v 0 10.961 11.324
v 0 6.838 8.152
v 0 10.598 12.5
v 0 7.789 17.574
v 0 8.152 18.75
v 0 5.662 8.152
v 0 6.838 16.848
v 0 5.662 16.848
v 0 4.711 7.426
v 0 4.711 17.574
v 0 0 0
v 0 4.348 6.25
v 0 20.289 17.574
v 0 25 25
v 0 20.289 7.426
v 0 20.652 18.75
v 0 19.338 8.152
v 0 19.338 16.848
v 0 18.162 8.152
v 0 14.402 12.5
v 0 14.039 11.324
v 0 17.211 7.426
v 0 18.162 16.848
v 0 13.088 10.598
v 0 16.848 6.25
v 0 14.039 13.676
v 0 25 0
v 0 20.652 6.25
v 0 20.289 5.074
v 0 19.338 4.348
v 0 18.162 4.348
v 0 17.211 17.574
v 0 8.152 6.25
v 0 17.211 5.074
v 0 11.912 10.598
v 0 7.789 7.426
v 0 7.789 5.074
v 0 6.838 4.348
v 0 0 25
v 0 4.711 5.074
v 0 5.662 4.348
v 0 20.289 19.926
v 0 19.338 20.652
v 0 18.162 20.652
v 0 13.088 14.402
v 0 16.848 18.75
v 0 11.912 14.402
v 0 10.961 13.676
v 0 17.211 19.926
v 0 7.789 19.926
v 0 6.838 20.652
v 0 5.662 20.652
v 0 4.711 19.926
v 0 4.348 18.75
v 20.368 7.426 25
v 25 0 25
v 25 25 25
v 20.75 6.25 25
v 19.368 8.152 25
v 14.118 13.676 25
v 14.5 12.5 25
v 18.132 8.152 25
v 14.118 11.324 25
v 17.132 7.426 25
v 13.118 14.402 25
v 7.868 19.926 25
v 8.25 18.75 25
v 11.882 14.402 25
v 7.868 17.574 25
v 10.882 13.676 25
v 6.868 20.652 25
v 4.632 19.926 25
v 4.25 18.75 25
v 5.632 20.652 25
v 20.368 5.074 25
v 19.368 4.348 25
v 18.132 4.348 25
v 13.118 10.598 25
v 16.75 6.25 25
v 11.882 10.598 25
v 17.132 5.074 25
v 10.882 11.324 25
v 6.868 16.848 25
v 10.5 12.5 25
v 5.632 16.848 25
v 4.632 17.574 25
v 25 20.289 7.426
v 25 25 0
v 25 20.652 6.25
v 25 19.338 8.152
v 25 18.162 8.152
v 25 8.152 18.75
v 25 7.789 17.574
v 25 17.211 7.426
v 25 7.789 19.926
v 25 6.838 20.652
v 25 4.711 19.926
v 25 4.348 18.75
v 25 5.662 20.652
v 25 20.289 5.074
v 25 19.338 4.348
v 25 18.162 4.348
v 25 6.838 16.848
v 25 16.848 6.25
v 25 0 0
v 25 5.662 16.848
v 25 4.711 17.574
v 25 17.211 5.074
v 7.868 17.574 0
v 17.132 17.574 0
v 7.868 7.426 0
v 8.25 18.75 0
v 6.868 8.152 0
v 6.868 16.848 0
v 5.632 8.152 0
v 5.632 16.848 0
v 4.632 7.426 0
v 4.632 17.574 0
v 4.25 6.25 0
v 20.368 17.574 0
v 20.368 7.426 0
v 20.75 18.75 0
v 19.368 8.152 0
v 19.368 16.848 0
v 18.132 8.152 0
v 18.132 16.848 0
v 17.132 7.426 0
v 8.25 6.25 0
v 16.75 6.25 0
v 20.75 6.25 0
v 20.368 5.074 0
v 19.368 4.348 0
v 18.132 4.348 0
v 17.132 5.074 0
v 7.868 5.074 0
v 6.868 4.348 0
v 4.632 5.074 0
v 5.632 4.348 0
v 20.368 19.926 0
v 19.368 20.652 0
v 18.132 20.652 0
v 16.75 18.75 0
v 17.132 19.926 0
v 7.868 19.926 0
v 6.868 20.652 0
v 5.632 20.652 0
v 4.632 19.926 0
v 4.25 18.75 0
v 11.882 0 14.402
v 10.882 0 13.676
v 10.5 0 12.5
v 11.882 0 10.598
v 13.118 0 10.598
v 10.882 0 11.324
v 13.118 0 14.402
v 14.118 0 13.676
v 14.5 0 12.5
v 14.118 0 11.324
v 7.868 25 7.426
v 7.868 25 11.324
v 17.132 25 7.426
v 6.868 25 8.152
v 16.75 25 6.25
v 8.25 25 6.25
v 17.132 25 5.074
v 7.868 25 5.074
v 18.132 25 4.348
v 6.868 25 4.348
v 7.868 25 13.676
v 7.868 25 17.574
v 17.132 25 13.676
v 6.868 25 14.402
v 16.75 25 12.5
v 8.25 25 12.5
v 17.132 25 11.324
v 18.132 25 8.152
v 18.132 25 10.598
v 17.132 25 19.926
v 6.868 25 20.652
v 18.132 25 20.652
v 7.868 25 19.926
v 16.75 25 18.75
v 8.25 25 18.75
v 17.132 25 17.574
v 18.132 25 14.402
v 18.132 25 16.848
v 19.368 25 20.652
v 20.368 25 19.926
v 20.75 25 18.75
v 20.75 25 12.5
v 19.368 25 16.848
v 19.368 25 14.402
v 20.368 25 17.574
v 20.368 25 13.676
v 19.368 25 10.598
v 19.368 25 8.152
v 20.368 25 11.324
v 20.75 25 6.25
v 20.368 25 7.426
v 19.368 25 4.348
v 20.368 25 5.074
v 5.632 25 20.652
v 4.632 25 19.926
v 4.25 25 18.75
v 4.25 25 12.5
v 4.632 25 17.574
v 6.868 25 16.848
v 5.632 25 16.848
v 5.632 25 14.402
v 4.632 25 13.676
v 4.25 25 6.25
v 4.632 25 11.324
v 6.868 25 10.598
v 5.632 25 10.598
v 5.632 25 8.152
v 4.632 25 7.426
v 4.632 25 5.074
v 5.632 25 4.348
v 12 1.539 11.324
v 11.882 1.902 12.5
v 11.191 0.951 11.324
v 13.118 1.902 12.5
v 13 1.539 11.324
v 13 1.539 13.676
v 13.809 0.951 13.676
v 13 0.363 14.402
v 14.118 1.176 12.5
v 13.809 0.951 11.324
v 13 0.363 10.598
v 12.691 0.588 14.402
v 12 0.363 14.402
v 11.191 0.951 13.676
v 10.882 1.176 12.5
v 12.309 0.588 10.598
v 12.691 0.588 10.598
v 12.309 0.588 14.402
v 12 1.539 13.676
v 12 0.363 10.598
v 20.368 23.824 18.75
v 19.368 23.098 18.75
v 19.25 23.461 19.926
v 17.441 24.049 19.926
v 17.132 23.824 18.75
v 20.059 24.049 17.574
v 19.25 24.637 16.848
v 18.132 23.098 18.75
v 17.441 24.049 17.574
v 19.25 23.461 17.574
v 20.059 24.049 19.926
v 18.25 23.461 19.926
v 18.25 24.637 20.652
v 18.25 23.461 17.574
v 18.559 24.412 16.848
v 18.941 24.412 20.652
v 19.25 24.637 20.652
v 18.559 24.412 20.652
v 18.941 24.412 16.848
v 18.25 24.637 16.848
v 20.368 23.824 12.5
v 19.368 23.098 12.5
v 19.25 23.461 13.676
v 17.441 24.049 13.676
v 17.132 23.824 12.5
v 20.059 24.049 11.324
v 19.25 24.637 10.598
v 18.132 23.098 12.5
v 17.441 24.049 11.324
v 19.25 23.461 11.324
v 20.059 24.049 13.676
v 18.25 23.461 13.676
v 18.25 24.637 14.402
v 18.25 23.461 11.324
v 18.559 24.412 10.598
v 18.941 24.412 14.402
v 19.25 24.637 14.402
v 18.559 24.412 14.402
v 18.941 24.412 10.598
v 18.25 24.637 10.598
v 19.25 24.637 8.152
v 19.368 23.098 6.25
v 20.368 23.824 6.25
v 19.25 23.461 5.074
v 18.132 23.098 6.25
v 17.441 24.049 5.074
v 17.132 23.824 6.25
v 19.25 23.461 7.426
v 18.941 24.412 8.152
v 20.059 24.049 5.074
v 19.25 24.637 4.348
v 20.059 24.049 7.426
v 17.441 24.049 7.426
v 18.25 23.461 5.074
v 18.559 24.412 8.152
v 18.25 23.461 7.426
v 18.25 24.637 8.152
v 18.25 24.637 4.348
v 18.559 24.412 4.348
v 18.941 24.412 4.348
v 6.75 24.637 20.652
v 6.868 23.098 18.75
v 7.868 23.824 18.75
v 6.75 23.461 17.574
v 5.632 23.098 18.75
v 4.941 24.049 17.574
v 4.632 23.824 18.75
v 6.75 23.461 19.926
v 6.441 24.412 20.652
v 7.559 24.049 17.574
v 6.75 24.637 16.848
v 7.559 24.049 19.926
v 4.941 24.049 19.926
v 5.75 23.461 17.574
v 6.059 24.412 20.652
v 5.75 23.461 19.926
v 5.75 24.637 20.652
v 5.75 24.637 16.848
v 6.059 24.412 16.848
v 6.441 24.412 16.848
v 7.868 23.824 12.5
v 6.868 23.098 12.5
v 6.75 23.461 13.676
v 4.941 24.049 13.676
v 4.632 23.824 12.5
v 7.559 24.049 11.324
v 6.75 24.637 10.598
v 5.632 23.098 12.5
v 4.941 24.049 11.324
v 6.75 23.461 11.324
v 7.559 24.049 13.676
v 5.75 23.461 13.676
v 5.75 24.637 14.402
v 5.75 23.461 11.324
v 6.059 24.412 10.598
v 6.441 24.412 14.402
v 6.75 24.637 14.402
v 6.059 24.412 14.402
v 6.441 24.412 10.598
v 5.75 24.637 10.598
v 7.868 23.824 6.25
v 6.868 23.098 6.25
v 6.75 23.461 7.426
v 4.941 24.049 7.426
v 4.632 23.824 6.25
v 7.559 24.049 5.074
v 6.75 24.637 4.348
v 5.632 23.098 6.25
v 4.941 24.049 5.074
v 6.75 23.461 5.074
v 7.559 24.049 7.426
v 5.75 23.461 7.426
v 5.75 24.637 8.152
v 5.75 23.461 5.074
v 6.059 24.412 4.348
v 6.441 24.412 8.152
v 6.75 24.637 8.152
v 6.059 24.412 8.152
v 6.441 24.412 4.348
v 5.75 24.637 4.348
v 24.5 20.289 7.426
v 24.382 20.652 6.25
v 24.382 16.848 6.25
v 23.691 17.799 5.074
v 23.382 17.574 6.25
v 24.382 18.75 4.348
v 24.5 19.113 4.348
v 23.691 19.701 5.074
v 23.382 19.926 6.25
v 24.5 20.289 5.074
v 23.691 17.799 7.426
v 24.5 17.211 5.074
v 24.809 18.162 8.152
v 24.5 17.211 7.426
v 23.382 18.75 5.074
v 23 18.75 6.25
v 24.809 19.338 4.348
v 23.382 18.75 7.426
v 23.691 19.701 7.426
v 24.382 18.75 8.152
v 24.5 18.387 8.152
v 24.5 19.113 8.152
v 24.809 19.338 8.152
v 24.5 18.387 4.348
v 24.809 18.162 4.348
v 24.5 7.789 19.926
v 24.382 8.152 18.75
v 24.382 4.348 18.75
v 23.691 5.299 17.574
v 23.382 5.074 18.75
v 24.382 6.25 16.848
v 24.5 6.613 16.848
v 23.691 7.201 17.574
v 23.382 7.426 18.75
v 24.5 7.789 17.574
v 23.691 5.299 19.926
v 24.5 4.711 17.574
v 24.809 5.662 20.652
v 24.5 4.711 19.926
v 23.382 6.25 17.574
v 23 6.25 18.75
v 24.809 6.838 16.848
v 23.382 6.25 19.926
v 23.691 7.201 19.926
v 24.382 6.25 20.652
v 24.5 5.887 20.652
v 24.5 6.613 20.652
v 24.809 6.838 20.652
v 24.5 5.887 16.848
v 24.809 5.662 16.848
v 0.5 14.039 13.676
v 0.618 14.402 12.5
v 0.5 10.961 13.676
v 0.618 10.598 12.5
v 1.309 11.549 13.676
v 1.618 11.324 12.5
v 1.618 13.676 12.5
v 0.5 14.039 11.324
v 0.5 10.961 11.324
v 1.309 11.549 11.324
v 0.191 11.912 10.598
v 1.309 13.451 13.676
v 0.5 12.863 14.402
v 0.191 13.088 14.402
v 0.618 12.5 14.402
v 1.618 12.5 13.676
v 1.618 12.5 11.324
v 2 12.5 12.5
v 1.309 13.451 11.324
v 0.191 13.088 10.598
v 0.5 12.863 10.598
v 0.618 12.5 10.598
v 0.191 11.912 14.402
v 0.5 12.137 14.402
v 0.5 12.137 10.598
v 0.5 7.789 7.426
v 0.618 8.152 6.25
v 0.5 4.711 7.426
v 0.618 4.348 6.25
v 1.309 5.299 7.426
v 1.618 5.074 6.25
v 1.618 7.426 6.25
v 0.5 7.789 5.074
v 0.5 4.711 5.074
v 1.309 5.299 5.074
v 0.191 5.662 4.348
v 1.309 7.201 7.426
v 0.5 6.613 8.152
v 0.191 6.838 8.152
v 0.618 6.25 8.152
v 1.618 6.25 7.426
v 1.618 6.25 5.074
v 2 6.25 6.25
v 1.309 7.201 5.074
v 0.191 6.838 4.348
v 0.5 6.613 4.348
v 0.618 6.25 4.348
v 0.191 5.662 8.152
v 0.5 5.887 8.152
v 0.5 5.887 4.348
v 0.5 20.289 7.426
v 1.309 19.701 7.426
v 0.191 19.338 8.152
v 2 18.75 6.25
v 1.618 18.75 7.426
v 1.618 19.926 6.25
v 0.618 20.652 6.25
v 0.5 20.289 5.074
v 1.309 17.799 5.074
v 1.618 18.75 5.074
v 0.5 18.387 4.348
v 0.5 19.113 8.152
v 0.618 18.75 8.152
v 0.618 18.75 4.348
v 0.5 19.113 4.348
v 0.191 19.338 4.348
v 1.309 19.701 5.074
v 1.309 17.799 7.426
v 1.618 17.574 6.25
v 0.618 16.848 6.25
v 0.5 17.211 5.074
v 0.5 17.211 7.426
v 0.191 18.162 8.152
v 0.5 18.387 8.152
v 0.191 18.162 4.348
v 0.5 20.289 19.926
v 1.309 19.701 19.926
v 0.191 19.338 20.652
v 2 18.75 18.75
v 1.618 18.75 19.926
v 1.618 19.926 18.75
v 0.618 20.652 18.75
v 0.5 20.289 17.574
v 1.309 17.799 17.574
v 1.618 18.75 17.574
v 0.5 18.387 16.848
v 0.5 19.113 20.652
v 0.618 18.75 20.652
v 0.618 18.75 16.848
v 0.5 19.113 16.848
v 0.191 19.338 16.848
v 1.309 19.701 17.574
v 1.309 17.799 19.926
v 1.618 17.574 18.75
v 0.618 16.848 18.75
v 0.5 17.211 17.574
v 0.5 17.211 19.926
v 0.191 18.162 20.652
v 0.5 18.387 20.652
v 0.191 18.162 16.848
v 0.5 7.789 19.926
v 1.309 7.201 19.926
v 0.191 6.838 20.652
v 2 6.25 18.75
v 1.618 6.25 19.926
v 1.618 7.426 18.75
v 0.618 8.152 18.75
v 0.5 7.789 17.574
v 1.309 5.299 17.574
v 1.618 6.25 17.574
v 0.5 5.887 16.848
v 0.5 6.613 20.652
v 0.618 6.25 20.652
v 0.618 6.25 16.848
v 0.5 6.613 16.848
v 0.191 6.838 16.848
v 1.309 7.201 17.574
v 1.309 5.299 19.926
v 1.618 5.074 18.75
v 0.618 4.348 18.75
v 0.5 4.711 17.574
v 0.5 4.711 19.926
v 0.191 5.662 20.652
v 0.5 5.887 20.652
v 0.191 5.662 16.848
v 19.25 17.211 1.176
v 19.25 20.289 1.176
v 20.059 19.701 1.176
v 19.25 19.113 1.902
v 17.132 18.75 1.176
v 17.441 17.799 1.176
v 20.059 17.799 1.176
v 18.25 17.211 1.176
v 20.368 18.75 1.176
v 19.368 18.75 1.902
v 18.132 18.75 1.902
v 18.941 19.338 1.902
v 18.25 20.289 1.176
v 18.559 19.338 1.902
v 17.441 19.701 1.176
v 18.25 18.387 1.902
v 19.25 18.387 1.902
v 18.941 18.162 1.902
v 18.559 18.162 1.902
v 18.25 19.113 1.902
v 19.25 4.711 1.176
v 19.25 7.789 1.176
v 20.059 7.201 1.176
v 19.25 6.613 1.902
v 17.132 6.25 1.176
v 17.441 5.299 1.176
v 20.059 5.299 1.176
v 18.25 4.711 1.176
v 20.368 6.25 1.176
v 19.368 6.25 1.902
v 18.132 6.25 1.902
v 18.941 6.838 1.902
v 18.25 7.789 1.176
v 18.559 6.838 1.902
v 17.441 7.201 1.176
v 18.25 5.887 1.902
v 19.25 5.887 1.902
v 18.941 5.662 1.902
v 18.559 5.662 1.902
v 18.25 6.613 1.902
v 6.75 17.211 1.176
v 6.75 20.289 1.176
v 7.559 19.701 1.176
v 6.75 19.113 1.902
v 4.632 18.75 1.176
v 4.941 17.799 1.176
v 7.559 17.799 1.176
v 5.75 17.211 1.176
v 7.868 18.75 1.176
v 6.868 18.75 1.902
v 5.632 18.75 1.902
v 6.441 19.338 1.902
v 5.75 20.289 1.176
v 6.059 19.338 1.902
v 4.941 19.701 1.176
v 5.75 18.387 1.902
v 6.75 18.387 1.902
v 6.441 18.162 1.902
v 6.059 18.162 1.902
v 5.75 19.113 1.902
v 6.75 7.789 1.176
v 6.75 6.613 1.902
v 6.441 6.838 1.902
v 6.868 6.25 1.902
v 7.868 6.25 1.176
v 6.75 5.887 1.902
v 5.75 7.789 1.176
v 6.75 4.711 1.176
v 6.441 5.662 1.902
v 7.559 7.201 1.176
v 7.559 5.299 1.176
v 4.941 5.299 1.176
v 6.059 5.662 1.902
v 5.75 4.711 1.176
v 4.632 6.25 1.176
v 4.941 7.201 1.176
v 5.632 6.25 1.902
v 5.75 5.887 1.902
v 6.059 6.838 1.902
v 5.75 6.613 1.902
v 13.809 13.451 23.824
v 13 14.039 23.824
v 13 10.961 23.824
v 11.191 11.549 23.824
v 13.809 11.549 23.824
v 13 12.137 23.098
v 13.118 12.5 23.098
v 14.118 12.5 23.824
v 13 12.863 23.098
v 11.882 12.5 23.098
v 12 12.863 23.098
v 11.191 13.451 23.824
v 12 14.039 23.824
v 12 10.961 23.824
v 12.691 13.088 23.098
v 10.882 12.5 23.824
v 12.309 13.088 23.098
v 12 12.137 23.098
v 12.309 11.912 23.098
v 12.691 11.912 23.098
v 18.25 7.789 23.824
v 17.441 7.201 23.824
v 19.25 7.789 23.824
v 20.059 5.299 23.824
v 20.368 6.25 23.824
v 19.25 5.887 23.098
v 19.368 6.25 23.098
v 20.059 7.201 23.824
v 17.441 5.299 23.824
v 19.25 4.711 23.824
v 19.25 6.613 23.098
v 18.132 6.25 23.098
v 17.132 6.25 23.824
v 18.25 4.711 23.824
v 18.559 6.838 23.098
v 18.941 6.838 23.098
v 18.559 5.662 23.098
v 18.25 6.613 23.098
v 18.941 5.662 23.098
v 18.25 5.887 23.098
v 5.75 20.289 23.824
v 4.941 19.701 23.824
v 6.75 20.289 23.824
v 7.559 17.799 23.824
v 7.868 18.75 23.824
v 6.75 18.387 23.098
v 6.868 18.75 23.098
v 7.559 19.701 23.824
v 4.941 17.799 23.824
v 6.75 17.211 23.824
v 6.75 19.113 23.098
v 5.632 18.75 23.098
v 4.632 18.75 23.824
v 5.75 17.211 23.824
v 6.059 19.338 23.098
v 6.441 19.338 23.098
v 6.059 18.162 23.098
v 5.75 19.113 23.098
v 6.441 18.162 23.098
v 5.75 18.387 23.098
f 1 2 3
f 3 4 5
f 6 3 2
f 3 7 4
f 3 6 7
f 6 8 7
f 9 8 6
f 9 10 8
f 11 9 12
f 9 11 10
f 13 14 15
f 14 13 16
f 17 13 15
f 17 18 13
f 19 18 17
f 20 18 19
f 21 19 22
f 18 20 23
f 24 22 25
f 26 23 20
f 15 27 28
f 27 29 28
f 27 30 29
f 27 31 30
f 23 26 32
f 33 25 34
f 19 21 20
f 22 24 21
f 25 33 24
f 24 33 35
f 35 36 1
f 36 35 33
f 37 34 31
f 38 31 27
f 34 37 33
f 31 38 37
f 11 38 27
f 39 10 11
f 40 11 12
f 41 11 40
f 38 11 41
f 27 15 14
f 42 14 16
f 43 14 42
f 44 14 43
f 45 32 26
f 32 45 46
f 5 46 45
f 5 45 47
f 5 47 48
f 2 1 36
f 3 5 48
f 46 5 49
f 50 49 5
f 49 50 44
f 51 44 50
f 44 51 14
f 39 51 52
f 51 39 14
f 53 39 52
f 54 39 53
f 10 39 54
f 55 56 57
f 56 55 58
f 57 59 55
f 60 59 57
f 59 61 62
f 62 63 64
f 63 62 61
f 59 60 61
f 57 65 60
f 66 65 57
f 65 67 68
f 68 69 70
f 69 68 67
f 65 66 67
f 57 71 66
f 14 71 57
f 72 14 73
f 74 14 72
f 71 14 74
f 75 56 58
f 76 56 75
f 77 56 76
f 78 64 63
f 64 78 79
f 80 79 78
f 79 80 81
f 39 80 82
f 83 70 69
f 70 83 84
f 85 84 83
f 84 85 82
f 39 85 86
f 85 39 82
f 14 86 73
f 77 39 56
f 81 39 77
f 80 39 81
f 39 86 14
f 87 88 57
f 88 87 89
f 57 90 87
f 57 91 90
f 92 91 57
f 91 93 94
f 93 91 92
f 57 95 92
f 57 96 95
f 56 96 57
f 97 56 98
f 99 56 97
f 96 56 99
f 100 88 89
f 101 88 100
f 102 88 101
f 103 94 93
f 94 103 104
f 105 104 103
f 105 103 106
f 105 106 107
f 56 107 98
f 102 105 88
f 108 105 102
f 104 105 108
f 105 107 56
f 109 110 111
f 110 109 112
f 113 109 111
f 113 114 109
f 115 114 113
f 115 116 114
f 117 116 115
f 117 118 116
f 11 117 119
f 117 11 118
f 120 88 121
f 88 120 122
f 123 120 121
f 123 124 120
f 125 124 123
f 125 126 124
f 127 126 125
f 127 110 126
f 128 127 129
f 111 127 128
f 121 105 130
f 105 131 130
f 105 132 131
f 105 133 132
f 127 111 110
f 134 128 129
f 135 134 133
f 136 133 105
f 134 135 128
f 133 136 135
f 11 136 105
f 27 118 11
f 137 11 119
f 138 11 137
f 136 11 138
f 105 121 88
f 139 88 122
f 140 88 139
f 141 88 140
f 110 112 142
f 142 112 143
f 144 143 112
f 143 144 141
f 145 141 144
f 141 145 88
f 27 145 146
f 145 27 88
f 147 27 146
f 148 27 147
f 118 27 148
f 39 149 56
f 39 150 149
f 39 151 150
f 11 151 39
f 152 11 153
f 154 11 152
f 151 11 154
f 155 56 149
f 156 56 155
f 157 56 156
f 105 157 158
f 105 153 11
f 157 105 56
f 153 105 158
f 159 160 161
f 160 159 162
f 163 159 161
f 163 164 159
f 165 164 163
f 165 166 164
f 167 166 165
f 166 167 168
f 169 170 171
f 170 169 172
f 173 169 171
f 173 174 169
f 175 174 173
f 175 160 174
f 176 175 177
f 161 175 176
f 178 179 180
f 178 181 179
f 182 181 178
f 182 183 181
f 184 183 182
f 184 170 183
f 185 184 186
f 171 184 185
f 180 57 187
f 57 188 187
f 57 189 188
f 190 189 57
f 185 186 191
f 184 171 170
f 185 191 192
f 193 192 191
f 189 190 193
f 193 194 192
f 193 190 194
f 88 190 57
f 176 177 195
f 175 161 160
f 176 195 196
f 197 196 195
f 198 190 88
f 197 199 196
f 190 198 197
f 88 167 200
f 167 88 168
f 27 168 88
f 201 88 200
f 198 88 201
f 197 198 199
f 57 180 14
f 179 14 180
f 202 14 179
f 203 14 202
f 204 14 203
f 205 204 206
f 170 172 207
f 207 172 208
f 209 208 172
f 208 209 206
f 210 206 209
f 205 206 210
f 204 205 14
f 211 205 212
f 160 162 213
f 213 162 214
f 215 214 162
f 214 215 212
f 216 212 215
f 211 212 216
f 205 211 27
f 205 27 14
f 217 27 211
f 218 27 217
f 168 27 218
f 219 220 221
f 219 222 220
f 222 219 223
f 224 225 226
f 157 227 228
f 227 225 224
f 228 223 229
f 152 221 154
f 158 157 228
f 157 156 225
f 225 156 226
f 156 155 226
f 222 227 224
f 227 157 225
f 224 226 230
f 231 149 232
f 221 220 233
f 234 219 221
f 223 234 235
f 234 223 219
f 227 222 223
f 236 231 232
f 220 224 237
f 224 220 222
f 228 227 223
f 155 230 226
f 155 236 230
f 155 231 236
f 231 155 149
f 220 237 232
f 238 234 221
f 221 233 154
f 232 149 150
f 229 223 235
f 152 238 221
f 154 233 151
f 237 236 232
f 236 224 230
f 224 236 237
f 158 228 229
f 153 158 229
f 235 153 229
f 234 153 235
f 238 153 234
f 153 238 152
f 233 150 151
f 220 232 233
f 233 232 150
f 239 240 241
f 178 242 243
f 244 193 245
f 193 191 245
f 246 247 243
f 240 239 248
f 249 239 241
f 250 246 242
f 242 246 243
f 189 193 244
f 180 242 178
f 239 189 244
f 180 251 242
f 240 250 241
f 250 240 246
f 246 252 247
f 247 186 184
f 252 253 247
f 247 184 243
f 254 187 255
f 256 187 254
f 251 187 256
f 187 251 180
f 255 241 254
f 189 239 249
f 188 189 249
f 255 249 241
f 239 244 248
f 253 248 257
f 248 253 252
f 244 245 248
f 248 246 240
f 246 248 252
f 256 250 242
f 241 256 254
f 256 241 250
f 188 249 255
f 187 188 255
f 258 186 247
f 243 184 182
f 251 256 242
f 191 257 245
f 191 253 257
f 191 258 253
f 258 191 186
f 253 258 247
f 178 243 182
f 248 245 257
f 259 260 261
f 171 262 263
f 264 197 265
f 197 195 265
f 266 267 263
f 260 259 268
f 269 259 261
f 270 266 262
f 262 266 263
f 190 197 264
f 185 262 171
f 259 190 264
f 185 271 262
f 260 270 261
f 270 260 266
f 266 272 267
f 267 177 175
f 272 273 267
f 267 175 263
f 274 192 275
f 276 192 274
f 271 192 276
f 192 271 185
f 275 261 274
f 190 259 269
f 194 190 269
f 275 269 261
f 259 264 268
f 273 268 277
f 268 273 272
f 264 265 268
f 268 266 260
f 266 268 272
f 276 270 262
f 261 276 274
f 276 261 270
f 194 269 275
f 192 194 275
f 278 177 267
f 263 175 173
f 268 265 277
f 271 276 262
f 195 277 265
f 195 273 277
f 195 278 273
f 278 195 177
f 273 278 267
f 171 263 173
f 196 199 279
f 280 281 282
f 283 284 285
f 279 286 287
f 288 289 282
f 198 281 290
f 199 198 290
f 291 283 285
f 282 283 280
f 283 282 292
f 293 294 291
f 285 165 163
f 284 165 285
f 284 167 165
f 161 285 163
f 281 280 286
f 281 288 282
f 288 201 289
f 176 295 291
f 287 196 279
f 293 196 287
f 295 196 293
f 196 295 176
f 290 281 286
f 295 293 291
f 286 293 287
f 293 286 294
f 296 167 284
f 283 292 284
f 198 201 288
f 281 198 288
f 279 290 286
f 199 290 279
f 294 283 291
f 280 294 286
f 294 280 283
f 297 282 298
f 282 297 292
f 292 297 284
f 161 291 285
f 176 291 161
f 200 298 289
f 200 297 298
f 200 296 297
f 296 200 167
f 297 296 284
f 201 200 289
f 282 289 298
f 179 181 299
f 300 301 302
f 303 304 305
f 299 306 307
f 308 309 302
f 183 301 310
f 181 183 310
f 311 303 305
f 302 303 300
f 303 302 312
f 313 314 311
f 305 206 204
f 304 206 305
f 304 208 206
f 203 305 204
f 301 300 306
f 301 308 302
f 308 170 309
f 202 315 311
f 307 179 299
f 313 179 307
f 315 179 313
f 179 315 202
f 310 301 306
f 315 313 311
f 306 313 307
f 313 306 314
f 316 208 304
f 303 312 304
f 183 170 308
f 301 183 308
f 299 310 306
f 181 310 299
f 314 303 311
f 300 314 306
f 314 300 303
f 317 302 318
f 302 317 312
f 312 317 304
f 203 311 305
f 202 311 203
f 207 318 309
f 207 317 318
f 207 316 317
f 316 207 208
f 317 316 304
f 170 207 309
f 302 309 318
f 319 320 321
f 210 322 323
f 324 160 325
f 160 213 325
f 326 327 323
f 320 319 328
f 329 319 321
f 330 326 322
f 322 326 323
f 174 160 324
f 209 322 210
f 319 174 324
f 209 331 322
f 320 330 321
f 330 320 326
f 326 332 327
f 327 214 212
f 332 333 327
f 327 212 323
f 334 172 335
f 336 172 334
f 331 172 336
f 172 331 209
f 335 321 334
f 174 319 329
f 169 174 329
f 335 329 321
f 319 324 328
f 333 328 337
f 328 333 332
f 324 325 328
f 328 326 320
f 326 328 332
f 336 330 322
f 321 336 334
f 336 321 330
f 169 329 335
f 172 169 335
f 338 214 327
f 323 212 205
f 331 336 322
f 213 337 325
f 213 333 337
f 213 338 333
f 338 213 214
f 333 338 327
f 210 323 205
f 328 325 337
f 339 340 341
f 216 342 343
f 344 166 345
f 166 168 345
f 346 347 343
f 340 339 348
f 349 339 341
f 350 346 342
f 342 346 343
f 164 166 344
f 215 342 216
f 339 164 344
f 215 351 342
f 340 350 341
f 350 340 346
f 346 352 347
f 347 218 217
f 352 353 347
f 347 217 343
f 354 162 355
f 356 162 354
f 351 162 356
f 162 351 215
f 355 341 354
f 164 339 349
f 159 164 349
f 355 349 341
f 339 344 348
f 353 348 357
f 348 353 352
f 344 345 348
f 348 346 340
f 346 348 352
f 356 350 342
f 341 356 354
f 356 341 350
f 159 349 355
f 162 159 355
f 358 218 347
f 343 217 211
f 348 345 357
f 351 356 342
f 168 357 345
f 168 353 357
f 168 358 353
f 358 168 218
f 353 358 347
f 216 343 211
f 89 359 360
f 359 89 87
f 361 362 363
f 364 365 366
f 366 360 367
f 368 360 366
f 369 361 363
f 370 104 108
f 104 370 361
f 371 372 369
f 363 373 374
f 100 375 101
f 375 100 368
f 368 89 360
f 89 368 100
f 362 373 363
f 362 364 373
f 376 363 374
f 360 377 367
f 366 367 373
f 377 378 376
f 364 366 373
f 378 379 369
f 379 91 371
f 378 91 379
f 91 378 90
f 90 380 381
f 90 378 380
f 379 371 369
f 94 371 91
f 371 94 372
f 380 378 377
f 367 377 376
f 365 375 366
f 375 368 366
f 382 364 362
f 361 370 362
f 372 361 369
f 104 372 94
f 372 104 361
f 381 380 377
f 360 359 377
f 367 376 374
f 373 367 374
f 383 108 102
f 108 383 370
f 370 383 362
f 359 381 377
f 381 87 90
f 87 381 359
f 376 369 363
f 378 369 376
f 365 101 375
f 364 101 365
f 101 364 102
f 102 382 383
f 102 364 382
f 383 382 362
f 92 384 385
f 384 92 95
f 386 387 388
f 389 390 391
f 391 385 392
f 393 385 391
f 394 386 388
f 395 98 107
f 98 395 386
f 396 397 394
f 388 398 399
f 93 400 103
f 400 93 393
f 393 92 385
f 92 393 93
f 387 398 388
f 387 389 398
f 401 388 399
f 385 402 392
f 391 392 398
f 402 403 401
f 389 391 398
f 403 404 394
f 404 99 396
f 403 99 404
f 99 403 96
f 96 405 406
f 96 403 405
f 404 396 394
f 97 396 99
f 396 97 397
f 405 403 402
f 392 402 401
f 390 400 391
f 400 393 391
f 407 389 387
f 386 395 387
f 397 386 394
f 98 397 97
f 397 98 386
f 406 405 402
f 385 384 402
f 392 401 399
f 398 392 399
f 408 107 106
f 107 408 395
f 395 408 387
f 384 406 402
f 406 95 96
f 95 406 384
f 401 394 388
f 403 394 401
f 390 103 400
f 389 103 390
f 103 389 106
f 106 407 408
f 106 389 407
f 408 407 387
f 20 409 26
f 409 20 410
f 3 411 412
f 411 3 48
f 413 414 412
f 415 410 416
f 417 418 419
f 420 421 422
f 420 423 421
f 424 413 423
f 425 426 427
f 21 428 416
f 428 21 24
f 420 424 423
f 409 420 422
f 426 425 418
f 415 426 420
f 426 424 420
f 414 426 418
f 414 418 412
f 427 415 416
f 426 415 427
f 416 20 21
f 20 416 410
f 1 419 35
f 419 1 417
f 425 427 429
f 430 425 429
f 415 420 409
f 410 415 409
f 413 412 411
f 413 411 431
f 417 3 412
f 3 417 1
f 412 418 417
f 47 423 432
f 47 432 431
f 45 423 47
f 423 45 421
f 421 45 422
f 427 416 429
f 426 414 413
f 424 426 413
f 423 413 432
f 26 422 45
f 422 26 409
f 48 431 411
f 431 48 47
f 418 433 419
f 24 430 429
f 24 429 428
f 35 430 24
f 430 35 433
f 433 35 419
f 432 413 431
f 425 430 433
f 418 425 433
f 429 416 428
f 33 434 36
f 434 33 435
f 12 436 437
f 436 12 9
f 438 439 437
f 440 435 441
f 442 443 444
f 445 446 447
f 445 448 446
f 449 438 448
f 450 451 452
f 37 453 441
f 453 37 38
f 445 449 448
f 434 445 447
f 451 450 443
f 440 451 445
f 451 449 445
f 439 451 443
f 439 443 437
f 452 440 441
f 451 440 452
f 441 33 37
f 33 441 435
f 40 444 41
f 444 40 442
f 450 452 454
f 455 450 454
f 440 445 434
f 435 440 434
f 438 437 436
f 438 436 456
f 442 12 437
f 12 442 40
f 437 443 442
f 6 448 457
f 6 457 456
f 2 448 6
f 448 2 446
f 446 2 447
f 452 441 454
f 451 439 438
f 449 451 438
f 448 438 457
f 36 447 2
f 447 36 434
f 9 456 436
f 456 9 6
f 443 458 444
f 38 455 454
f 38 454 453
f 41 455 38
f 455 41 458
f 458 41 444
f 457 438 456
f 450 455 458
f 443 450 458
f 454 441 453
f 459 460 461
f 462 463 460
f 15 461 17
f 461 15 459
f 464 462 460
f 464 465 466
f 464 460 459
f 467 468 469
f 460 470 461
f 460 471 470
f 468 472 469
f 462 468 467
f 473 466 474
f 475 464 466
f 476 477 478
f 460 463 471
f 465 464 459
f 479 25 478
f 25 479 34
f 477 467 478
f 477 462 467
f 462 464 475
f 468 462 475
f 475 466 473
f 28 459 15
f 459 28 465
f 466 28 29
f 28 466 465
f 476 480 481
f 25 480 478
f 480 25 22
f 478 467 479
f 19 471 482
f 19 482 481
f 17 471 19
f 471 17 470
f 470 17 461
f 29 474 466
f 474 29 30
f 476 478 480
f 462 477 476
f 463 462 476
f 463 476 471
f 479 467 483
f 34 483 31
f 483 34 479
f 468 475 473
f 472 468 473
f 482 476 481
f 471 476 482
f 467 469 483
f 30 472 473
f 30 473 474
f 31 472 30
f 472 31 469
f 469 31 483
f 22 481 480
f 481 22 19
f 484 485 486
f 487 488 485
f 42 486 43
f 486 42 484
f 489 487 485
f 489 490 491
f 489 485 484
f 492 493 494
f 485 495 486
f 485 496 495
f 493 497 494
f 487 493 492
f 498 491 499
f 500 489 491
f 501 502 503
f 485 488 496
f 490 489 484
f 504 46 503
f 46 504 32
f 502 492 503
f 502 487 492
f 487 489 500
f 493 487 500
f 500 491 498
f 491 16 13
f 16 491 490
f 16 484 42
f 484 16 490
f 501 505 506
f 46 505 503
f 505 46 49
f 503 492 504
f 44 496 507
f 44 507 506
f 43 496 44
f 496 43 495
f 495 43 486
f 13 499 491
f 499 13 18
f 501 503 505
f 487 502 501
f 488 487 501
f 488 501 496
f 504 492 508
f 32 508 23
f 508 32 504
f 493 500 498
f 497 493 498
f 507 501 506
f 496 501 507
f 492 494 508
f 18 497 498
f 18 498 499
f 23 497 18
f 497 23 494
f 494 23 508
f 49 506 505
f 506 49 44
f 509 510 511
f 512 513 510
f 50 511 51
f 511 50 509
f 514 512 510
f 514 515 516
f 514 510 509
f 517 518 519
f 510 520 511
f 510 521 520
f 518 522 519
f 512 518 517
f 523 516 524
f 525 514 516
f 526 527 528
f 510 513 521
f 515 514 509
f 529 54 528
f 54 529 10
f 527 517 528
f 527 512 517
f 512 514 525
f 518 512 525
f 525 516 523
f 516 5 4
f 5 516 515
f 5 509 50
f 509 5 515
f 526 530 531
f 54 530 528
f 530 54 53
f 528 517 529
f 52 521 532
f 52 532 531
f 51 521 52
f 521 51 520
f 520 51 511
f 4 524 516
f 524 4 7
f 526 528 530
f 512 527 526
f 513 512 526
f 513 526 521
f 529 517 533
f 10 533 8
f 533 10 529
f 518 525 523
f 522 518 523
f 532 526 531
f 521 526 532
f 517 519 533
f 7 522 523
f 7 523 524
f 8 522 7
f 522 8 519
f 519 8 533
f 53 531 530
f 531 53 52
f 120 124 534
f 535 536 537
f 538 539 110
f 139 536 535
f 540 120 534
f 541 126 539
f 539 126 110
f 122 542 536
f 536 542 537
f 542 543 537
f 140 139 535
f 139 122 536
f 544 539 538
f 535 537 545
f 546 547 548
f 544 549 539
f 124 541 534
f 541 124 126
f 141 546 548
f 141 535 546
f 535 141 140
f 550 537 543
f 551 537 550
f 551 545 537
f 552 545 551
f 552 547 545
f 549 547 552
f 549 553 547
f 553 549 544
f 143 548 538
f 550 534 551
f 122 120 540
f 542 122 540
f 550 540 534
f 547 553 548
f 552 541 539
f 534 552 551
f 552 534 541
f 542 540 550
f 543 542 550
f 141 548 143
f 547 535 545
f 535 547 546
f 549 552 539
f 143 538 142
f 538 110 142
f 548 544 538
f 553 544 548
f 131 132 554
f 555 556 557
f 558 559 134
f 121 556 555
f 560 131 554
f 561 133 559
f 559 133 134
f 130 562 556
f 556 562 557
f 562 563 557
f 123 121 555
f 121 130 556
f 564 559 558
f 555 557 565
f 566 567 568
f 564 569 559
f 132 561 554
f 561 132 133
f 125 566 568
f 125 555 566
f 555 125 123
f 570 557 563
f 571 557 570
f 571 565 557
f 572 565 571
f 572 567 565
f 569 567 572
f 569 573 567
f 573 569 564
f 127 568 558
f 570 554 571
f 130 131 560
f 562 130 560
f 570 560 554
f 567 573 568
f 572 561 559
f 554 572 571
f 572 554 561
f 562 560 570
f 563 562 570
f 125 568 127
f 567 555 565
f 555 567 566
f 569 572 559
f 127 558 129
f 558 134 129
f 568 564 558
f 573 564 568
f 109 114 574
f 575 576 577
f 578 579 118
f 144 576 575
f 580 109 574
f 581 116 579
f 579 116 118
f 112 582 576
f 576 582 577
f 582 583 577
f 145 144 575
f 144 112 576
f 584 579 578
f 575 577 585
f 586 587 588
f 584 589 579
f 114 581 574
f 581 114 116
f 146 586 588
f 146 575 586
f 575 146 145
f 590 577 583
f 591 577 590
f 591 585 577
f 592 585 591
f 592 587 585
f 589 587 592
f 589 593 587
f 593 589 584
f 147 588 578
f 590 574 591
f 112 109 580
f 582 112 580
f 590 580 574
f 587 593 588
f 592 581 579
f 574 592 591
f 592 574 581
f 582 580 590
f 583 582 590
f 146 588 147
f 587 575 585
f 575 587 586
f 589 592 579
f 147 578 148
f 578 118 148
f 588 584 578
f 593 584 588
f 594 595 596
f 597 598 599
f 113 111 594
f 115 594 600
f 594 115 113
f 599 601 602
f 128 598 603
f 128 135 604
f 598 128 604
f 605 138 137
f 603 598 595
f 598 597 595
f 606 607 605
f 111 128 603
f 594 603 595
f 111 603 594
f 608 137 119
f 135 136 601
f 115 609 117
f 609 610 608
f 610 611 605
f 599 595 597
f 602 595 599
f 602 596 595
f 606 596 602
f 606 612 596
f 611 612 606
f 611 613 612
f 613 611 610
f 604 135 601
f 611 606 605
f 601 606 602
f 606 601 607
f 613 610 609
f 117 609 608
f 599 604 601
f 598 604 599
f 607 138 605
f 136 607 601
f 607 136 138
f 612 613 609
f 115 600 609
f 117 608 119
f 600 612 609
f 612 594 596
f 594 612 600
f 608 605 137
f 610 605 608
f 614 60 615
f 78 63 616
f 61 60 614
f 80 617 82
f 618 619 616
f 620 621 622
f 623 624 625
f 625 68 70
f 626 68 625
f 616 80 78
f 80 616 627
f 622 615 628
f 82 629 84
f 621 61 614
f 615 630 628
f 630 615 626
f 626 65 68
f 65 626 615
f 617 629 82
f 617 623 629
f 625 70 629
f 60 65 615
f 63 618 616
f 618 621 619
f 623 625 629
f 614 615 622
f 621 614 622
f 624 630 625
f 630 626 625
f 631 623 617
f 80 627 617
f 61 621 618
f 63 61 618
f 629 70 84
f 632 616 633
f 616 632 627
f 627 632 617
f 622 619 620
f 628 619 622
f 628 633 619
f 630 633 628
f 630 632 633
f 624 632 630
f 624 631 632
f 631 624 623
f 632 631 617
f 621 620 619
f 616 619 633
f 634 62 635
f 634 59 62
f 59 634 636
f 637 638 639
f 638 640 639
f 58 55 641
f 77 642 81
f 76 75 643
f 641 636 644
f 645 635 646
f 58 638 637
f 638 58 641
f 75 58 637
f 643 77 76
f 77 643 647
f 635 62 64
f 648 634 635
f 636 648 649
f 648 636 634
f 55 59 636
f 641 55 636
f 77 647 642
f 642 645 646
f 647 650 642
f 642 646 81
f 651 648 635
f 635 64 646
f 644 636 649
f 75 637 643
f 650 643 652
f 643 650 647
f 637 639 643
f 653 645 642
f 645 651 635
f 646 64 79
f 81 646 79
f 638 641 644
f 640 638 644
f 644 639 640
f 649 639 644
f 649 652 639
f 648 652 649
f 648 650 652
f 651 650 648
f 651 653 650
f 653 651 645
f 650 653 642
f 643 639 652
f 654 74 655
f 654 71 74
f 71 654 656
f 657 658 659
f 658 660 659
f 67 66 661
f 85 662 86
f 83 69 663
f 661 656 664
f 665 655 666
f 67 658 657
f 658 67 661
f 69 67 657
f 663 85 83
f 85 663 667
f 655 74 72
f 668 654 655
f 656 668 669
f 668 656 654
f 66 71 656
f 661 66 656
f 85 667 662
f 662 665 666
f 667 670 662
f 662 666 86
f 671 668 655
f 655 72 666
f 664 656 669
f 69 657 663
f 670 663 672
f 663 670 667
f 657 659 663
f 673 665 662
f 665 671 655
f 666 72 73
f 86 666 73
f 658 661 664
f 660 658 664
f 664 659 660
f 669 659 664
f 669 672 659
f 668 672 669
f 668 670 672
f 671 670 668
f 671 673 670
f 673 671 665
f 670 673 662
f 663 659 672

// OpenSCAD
lado = 25;
raio = 2;
//canto = 3;

module furo(){sphere(raio,$fn = 10);}

difference(){
    cube(lado);
    // Face 1
    translate([lado/2,0,lado/2])furo();
    // Face 6
    translate([3*lado/4,lado,3*lado/4])furo();
    translate([3*lado/4,lado,lado/2])furo();
    translate([3*lado/4,lado,lado/4])furo();
    translate([lado/4,lado,3*lado/4])furo();
    translate([lado/4,lado,lado/2])furo();
    translate([lado/4,lado,lado/4])furo();
    // Face 2
    translate([lado,3*lado/4,lado/4])furo();
    translate([lado,lado/4,3*lado/4])furo();
    // Face 5
    translate([0,lado/2,lado/2])furo();
    translate([0,lado/4,lado/4])furo();
    translate([0,3*lado/4,lado/4])furo();
    translate([0,3*lado/4,3*lado/4])furo();
    translate([0,lado/4,3*lado/4])furo();

    // Face 4
    translate([3*lado/4,3*lado/4,0])furo();
    translate([3*lado/4,lado/4,0])furo();
    translate([lado/4,3*lado/4,0])furo();
    translate([lado/4,lado/4,0])furo();
    // Face 3
    translate([lado/2,lado/2,lado])furo();
    translate([3*lado/4,lado/4,lado])furo();
    translate([lado/4,3*lado/4,lado])furo();
}
